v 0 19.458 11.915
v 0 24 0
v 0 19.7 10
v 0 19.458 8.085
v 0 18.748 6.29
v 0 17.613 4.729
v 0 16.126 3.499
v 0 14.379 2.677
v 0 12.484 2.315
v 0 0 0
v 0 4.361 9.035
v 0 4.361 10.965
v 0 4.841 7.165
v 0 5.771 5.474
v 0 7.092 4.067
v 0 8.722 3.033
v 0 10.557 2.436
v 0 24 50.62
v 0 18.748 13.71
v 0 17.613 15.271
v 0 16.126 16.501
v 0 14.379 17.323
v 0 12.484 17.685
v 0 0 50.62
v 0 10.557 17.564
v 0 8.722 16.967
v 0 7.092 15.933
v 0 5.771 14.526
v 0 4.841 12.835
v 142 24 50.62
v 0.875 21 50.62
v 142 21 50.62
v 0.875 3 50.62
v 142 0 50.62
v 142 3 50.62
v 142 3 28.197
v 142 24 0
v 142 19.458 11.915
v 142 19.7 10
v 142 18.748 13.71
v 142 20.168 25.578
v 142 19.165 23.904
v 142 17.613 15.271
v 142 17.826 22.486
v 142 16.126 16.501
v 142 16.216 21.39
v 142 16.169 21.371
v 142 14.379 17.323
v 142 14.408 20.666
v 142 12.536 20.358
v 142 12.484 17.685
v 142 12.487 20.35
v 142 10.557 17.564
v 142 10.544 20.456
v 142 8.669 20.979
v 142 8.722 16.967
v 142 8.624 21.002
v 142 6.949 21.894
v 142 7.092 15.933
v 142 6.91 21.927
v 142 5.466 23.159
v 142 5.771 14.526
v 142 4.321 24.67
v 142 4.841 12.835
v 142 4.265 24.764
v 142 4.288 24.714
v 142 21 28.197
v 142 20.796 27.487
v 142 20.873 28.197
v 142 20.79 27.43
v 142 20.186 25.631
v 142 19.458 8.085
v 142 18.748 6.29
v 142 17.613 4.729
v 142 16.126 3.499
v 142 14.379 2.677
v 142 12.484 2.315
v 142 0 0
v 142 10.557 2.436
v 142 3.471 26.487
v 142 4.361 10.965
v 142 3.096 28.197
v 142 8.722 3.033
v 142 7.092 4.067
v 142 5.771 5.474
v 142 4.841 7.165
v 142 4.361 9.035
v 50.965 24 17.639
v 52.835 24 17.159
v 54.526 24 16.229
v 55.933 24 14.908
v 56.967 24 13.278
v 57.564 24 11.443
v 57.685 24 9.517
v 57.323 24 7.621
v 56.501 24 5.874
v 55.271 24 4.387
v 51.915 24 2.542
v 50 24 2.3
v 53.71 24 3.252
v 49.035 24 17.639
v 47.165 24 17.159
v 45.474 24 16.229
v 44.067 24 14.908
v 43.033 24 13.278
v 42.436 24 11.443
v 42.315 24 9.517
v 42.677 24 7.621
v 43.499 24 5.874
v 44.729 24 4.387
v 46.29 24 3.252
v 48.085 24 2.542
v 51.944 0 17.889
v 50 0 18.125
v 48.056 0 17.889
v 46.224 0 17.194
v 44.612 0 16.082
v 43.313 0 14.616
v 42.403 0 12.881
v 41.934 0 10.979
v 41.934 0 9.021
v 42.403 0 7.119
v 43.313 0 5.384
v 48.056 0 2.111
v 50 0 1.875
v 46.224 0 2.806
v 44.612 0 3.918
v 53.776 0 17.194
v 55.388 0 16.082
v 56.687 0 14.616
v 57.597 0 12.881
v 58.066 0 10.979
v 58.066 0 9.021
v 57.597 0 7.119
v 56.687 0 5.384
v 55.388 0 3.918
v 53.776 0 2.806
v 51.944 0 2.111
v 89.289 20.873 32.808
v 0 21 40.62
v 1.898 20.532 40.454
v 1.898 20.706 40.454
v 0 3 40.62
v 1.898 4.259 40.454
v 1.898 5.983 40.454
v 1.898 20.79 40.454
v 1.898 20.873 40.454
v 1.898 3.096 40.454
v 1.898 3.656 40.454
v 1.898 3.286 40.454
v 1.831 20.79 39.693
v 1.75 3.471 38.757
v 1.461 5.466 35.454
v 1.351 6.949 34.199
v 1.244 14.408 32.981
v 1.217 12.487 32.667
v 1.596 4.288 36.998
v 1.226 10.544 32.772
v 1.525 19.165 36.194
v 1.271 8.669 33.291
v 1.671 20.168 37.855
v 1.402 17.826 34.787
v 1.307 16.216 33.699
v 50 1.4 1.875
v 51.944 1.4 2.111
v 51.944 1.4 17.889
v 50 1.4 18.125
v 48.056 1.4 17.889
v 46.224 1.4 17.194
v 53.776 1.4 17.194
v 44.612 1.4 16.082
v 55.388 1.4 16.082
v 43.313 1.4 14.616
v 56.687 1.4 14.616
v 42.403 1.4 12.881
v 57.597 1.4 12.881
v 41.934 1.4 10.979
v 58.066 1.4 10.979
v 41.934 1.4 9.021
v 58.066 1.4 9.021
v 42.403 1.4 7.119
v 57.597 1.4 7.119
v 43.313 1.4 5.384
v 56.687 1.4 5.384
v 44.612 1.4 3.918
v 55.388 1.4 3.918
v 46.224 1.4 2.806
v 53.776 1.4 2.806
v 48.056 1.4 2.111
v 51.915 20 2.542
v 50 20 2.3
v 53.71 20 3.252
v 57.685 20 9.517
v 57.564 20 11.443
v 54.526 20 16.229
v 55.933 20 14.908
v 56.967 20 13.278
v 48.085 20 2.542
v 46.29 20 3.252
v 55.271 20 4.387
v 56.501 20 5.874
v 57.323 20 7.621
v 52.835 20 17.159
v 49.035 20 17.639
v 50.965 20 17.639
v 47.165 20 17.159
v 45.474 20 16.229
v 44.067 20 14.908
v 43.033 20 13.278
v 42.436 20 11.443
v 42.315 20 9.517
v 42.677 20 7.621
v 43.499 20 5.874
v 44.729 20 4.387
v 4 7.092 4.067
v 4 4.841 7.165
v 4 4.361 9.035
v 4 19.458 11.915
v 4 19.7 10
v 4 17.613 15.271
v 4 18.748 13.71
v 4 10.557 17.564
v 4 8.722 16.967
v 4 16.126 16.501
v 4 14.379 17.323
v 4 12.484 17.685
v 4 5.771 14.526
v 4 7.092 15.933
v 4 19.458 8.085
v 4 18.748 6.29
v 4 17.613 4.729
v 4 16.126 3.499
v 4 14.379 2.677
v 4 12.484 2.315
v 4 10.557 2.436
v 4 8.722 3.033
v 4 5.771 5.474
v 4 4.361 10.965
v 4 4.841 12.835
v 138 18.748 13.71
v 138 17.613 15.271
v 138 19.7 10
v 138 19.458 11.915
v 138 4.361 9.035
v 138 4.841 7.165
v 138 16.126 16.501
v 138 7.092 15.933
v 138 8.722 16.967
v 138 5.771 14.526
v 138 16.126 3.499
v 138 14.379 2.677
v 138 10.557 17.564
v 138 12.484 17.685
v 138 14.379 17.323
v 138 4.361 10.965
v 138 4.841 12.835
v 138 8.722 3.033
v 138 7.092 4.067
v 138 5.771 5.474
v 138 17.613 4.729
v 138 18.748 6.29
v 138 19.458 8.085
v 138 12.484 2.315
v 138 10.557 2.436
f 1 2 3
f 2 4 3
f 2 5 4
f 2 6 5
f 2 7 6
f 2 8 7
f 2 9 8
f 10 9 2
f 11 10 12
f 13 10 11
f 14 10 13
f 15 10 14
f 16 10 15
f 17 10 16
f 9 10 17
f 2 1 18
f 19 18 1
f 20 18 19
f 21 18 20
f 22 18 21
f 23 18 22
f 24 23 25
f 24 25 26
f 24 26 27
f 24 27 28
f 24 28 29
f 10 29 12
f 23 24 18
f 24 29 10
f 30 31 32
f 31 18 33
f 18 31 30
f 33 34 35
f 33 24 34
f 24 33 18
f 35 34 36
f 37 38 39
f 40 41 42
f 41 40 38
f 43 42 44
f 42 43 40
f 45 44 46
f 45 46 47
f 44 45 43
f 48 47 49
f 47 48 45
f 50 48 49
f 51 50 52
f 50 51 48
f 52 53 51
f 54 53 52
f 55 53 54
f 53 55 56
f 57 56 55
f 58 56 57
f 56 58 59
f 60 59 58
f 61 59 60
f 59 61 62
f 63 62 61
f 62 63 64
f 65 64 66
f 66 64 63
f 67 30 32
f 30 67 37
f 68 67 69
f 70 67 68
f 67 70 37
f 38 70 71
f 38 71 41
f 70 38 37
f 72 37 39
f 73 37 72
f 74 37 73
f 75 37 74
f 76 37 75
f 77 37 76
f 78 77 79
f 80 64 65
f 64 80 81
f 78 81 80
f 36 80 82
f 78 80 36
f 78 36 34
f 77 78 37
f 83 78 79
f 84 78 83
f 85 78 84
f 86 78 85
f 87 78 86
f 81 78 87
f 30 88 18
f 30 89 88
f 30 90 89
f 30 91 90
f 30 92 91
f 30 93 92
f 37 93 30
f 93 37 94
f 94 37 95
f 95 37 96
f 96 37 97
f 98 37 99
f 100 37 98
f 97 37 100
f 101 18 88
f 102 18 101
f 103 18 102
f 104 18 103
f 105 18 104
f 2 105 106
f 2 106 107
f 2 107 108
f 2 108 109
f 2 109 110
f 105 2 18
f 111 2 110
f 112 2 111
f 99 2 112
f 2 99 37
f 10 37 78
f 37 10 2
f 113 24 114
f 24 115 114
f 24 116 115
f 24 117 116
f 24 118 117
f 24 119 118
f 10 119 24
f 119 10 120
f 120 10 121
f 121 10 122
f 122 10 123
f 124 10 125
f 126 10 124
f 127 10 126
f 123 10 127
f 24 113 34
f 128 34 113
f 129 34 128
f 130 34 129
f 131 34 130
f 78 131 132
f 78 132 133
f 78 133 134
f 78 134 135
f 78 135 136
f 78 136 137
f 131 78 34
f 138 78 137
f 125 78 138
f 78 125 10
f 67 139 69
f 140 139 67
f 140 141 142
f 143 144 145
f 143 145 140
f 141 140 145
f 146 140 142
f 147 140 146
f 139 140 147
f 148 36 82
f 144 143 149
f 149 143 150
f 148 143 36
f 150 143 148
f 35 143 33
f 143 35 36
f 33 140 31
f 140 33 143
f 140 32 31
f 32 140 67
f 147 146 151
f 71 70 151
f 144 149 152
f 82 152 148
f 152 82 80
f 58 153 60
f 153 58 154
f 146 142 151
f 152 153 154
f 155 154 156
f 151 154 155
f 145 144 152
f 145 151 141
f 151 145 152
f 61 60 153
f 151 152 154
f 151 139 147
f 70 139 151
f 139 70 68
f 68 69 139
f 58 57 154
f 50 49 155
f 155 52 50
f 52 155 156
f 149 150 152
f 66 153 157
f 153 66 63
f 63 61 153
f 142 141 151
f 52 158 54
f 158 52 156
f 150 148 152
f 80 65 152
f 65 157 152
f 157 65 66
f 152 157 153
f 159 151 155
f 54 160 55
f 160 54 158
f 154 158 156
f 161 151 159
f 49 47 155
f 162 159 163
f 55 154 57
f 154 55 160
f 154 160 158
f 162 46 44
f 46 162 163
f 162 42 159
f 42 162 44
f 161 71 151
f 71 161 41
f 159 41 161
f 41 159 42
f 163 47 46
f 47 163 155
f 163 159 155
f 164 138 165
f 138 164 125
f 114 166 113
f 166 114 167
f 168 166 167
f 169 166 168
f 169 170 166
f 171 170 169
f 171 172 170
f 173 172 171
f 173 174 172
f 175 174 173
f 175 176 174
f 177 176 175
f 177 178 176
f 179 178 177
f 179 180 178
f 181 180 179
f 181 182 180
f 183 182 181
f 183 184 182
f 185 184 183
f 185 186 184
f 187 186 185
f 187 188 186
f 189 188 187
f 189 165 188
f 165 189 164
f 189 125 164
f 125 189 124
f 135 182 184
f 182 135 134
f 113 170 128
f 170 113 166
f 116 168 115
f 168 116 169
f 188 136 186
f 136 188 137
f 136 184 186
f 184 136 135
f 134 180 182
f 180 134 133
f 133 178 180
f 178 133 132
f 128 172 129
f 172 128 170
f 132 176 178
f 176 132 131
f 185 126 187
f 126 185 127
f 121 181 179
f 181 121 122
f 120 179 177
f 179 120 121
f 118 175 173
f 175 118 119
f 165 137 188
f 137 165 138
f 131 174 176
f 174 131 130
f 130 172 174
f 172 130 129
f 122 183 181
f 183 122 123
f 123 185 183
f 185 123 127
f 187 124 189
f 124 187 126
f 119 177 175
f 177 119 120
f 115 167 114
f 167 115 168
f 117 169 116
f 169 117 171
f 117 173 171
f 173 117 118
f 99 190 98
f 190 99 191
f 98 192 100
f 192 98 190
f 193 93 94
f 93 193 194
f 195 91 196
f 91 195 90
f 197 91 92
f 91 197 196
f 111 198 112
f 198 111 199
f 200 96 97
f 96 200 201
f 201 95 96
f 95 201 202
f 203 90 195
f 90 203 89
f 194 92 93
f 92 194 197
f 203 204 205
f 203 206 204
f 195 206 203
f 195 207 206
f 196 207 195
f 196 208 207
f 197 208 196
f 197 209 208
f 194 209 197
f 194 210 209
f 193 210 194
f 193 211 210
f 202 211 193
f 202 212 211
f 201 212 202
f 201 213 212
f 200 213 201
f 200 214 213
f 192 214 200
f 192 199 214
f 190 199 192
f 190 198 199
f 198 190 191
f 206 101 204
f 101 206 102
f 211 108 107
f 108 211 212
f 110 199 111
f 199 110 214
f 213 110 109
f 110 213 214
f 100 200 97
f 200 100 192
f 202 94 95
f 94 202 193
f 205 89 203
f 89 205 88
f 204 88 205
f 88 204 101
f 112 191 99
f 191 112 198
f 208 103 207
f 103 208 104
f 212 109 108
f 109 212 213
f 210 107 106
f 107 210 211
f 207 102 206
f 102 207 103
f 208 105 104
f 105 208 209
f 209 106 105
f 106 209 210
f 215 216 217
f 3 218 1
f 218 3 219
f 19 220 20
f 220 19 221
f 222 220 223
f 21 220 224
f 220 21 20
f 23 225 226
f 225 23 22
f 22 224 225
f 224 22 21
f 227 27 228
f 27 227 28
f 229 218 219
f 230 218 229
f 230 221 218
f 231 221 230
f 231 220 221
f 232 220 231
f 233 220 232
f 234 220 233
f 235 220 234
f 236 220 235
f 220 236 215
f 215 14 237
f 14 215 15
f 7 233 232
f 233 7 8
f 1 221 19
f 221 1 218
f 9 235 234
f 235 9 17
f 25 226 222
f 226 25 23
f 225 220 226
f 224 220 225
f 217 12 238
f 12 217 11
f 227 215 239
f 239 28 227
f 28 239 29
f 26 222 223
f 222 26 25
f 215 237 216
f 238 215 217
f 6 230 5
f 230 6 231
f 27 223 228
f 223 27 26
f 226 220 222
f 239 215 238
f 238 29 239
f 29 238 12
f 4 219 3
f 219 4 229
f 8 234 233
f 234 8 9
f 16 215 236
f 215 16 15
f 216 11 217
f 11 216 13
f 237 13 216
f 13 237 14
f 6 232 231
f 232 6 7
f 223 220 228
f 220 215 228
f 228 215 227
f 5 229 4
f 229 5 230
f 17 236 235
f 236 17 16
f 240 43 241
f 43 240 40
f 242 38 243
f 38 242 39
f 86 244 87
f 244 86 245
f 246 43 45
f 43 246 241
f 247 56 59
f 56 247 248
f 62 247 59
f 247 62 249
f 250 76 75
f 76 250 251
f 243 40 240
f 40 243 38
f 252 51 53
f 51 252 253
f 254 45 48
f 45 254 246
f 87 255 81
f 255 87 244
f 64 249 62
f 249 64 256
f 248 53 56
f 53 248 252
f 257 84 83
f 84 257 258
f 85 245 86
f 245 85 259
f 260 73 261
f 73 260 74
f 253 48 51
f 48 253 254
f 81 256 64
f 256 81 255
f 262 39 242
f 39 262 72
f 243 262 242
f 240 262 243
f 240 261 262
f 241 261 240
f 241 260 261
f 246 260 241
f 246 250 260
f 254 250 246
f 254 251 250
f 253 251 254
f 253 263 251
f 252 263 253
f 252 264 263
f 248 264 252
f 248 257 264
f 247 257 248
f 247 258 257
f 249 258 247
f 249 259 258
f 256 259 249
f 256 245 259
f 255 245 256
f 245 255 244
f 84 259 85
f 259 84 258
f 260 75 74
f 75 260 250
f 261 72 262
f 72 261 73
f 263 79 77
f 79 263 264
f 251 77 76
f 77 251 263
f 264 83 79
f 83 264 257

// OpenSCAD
//TODO: Get correct length
length = 142;
diameter = 18;
wallThickness = 3;
angle = 5;
floorThickness = 10;
heightStepDown = .2;
offset = 10;
height = 40.42 + heightStepDown + offset;
washerDiameter = 16.25;
washerHeight = 1.4;
washerHeightOffset = 1;
magnetHeightOffset = 1;
magnetBaseInnerDiameter = 15.4;
magnetHeight = 4.0;
width = diameter + wallThickness * 2;
centerOfConnectorX = 50;
centerOfConnectorY = 10;
centerOfBackConnectorX = width/2;
echo(centerOfBackConnectorX);

difference(){

    cube([length, width, height]);
    
    translate([0, wallThickness, height - offset])
        rotate([0, angle, 0])
            cube([length + 1, width - wallThickness * 2, height + offset]);
    
    translate([2, diameter/2 + wallThickness, height - offset + 1 ])
        rotate([90 + angle, 0, 90])
            cylinder(length + 3, d=diameter);
    translate([centerOfConnectorX, washerHeight, centerOfConnectorY])
        rotate([90, 90, 0])
            cylinder(washerHeight, d=washerDiameter);
    translate([centerOfConnectorX, width, centerOfConnectorY])
        rotate([90, 90, 0])
            cylinder(magnetHeight, d=magnetBaseInnerDiameter);
    
    translate([0, centerOfBackConnectorX, centerOfConnectorY])
        rotate([90, 0, 90])
            cylinder(magnetHeight, d=magnetBaseInnerDiameter);
    
    translate([length - magnetHeight, centerOfBackConnectorX, centerOfConnectorY])
        rotate([90, 0, 90])
            cylinder(magnetHeight, d=magnetBaseInnerDiameter);

}
//translate([length, 0, 0])
//    import("C:/Code/Git/3DPrint/PotionExplosionMarbleTrack.stl");
